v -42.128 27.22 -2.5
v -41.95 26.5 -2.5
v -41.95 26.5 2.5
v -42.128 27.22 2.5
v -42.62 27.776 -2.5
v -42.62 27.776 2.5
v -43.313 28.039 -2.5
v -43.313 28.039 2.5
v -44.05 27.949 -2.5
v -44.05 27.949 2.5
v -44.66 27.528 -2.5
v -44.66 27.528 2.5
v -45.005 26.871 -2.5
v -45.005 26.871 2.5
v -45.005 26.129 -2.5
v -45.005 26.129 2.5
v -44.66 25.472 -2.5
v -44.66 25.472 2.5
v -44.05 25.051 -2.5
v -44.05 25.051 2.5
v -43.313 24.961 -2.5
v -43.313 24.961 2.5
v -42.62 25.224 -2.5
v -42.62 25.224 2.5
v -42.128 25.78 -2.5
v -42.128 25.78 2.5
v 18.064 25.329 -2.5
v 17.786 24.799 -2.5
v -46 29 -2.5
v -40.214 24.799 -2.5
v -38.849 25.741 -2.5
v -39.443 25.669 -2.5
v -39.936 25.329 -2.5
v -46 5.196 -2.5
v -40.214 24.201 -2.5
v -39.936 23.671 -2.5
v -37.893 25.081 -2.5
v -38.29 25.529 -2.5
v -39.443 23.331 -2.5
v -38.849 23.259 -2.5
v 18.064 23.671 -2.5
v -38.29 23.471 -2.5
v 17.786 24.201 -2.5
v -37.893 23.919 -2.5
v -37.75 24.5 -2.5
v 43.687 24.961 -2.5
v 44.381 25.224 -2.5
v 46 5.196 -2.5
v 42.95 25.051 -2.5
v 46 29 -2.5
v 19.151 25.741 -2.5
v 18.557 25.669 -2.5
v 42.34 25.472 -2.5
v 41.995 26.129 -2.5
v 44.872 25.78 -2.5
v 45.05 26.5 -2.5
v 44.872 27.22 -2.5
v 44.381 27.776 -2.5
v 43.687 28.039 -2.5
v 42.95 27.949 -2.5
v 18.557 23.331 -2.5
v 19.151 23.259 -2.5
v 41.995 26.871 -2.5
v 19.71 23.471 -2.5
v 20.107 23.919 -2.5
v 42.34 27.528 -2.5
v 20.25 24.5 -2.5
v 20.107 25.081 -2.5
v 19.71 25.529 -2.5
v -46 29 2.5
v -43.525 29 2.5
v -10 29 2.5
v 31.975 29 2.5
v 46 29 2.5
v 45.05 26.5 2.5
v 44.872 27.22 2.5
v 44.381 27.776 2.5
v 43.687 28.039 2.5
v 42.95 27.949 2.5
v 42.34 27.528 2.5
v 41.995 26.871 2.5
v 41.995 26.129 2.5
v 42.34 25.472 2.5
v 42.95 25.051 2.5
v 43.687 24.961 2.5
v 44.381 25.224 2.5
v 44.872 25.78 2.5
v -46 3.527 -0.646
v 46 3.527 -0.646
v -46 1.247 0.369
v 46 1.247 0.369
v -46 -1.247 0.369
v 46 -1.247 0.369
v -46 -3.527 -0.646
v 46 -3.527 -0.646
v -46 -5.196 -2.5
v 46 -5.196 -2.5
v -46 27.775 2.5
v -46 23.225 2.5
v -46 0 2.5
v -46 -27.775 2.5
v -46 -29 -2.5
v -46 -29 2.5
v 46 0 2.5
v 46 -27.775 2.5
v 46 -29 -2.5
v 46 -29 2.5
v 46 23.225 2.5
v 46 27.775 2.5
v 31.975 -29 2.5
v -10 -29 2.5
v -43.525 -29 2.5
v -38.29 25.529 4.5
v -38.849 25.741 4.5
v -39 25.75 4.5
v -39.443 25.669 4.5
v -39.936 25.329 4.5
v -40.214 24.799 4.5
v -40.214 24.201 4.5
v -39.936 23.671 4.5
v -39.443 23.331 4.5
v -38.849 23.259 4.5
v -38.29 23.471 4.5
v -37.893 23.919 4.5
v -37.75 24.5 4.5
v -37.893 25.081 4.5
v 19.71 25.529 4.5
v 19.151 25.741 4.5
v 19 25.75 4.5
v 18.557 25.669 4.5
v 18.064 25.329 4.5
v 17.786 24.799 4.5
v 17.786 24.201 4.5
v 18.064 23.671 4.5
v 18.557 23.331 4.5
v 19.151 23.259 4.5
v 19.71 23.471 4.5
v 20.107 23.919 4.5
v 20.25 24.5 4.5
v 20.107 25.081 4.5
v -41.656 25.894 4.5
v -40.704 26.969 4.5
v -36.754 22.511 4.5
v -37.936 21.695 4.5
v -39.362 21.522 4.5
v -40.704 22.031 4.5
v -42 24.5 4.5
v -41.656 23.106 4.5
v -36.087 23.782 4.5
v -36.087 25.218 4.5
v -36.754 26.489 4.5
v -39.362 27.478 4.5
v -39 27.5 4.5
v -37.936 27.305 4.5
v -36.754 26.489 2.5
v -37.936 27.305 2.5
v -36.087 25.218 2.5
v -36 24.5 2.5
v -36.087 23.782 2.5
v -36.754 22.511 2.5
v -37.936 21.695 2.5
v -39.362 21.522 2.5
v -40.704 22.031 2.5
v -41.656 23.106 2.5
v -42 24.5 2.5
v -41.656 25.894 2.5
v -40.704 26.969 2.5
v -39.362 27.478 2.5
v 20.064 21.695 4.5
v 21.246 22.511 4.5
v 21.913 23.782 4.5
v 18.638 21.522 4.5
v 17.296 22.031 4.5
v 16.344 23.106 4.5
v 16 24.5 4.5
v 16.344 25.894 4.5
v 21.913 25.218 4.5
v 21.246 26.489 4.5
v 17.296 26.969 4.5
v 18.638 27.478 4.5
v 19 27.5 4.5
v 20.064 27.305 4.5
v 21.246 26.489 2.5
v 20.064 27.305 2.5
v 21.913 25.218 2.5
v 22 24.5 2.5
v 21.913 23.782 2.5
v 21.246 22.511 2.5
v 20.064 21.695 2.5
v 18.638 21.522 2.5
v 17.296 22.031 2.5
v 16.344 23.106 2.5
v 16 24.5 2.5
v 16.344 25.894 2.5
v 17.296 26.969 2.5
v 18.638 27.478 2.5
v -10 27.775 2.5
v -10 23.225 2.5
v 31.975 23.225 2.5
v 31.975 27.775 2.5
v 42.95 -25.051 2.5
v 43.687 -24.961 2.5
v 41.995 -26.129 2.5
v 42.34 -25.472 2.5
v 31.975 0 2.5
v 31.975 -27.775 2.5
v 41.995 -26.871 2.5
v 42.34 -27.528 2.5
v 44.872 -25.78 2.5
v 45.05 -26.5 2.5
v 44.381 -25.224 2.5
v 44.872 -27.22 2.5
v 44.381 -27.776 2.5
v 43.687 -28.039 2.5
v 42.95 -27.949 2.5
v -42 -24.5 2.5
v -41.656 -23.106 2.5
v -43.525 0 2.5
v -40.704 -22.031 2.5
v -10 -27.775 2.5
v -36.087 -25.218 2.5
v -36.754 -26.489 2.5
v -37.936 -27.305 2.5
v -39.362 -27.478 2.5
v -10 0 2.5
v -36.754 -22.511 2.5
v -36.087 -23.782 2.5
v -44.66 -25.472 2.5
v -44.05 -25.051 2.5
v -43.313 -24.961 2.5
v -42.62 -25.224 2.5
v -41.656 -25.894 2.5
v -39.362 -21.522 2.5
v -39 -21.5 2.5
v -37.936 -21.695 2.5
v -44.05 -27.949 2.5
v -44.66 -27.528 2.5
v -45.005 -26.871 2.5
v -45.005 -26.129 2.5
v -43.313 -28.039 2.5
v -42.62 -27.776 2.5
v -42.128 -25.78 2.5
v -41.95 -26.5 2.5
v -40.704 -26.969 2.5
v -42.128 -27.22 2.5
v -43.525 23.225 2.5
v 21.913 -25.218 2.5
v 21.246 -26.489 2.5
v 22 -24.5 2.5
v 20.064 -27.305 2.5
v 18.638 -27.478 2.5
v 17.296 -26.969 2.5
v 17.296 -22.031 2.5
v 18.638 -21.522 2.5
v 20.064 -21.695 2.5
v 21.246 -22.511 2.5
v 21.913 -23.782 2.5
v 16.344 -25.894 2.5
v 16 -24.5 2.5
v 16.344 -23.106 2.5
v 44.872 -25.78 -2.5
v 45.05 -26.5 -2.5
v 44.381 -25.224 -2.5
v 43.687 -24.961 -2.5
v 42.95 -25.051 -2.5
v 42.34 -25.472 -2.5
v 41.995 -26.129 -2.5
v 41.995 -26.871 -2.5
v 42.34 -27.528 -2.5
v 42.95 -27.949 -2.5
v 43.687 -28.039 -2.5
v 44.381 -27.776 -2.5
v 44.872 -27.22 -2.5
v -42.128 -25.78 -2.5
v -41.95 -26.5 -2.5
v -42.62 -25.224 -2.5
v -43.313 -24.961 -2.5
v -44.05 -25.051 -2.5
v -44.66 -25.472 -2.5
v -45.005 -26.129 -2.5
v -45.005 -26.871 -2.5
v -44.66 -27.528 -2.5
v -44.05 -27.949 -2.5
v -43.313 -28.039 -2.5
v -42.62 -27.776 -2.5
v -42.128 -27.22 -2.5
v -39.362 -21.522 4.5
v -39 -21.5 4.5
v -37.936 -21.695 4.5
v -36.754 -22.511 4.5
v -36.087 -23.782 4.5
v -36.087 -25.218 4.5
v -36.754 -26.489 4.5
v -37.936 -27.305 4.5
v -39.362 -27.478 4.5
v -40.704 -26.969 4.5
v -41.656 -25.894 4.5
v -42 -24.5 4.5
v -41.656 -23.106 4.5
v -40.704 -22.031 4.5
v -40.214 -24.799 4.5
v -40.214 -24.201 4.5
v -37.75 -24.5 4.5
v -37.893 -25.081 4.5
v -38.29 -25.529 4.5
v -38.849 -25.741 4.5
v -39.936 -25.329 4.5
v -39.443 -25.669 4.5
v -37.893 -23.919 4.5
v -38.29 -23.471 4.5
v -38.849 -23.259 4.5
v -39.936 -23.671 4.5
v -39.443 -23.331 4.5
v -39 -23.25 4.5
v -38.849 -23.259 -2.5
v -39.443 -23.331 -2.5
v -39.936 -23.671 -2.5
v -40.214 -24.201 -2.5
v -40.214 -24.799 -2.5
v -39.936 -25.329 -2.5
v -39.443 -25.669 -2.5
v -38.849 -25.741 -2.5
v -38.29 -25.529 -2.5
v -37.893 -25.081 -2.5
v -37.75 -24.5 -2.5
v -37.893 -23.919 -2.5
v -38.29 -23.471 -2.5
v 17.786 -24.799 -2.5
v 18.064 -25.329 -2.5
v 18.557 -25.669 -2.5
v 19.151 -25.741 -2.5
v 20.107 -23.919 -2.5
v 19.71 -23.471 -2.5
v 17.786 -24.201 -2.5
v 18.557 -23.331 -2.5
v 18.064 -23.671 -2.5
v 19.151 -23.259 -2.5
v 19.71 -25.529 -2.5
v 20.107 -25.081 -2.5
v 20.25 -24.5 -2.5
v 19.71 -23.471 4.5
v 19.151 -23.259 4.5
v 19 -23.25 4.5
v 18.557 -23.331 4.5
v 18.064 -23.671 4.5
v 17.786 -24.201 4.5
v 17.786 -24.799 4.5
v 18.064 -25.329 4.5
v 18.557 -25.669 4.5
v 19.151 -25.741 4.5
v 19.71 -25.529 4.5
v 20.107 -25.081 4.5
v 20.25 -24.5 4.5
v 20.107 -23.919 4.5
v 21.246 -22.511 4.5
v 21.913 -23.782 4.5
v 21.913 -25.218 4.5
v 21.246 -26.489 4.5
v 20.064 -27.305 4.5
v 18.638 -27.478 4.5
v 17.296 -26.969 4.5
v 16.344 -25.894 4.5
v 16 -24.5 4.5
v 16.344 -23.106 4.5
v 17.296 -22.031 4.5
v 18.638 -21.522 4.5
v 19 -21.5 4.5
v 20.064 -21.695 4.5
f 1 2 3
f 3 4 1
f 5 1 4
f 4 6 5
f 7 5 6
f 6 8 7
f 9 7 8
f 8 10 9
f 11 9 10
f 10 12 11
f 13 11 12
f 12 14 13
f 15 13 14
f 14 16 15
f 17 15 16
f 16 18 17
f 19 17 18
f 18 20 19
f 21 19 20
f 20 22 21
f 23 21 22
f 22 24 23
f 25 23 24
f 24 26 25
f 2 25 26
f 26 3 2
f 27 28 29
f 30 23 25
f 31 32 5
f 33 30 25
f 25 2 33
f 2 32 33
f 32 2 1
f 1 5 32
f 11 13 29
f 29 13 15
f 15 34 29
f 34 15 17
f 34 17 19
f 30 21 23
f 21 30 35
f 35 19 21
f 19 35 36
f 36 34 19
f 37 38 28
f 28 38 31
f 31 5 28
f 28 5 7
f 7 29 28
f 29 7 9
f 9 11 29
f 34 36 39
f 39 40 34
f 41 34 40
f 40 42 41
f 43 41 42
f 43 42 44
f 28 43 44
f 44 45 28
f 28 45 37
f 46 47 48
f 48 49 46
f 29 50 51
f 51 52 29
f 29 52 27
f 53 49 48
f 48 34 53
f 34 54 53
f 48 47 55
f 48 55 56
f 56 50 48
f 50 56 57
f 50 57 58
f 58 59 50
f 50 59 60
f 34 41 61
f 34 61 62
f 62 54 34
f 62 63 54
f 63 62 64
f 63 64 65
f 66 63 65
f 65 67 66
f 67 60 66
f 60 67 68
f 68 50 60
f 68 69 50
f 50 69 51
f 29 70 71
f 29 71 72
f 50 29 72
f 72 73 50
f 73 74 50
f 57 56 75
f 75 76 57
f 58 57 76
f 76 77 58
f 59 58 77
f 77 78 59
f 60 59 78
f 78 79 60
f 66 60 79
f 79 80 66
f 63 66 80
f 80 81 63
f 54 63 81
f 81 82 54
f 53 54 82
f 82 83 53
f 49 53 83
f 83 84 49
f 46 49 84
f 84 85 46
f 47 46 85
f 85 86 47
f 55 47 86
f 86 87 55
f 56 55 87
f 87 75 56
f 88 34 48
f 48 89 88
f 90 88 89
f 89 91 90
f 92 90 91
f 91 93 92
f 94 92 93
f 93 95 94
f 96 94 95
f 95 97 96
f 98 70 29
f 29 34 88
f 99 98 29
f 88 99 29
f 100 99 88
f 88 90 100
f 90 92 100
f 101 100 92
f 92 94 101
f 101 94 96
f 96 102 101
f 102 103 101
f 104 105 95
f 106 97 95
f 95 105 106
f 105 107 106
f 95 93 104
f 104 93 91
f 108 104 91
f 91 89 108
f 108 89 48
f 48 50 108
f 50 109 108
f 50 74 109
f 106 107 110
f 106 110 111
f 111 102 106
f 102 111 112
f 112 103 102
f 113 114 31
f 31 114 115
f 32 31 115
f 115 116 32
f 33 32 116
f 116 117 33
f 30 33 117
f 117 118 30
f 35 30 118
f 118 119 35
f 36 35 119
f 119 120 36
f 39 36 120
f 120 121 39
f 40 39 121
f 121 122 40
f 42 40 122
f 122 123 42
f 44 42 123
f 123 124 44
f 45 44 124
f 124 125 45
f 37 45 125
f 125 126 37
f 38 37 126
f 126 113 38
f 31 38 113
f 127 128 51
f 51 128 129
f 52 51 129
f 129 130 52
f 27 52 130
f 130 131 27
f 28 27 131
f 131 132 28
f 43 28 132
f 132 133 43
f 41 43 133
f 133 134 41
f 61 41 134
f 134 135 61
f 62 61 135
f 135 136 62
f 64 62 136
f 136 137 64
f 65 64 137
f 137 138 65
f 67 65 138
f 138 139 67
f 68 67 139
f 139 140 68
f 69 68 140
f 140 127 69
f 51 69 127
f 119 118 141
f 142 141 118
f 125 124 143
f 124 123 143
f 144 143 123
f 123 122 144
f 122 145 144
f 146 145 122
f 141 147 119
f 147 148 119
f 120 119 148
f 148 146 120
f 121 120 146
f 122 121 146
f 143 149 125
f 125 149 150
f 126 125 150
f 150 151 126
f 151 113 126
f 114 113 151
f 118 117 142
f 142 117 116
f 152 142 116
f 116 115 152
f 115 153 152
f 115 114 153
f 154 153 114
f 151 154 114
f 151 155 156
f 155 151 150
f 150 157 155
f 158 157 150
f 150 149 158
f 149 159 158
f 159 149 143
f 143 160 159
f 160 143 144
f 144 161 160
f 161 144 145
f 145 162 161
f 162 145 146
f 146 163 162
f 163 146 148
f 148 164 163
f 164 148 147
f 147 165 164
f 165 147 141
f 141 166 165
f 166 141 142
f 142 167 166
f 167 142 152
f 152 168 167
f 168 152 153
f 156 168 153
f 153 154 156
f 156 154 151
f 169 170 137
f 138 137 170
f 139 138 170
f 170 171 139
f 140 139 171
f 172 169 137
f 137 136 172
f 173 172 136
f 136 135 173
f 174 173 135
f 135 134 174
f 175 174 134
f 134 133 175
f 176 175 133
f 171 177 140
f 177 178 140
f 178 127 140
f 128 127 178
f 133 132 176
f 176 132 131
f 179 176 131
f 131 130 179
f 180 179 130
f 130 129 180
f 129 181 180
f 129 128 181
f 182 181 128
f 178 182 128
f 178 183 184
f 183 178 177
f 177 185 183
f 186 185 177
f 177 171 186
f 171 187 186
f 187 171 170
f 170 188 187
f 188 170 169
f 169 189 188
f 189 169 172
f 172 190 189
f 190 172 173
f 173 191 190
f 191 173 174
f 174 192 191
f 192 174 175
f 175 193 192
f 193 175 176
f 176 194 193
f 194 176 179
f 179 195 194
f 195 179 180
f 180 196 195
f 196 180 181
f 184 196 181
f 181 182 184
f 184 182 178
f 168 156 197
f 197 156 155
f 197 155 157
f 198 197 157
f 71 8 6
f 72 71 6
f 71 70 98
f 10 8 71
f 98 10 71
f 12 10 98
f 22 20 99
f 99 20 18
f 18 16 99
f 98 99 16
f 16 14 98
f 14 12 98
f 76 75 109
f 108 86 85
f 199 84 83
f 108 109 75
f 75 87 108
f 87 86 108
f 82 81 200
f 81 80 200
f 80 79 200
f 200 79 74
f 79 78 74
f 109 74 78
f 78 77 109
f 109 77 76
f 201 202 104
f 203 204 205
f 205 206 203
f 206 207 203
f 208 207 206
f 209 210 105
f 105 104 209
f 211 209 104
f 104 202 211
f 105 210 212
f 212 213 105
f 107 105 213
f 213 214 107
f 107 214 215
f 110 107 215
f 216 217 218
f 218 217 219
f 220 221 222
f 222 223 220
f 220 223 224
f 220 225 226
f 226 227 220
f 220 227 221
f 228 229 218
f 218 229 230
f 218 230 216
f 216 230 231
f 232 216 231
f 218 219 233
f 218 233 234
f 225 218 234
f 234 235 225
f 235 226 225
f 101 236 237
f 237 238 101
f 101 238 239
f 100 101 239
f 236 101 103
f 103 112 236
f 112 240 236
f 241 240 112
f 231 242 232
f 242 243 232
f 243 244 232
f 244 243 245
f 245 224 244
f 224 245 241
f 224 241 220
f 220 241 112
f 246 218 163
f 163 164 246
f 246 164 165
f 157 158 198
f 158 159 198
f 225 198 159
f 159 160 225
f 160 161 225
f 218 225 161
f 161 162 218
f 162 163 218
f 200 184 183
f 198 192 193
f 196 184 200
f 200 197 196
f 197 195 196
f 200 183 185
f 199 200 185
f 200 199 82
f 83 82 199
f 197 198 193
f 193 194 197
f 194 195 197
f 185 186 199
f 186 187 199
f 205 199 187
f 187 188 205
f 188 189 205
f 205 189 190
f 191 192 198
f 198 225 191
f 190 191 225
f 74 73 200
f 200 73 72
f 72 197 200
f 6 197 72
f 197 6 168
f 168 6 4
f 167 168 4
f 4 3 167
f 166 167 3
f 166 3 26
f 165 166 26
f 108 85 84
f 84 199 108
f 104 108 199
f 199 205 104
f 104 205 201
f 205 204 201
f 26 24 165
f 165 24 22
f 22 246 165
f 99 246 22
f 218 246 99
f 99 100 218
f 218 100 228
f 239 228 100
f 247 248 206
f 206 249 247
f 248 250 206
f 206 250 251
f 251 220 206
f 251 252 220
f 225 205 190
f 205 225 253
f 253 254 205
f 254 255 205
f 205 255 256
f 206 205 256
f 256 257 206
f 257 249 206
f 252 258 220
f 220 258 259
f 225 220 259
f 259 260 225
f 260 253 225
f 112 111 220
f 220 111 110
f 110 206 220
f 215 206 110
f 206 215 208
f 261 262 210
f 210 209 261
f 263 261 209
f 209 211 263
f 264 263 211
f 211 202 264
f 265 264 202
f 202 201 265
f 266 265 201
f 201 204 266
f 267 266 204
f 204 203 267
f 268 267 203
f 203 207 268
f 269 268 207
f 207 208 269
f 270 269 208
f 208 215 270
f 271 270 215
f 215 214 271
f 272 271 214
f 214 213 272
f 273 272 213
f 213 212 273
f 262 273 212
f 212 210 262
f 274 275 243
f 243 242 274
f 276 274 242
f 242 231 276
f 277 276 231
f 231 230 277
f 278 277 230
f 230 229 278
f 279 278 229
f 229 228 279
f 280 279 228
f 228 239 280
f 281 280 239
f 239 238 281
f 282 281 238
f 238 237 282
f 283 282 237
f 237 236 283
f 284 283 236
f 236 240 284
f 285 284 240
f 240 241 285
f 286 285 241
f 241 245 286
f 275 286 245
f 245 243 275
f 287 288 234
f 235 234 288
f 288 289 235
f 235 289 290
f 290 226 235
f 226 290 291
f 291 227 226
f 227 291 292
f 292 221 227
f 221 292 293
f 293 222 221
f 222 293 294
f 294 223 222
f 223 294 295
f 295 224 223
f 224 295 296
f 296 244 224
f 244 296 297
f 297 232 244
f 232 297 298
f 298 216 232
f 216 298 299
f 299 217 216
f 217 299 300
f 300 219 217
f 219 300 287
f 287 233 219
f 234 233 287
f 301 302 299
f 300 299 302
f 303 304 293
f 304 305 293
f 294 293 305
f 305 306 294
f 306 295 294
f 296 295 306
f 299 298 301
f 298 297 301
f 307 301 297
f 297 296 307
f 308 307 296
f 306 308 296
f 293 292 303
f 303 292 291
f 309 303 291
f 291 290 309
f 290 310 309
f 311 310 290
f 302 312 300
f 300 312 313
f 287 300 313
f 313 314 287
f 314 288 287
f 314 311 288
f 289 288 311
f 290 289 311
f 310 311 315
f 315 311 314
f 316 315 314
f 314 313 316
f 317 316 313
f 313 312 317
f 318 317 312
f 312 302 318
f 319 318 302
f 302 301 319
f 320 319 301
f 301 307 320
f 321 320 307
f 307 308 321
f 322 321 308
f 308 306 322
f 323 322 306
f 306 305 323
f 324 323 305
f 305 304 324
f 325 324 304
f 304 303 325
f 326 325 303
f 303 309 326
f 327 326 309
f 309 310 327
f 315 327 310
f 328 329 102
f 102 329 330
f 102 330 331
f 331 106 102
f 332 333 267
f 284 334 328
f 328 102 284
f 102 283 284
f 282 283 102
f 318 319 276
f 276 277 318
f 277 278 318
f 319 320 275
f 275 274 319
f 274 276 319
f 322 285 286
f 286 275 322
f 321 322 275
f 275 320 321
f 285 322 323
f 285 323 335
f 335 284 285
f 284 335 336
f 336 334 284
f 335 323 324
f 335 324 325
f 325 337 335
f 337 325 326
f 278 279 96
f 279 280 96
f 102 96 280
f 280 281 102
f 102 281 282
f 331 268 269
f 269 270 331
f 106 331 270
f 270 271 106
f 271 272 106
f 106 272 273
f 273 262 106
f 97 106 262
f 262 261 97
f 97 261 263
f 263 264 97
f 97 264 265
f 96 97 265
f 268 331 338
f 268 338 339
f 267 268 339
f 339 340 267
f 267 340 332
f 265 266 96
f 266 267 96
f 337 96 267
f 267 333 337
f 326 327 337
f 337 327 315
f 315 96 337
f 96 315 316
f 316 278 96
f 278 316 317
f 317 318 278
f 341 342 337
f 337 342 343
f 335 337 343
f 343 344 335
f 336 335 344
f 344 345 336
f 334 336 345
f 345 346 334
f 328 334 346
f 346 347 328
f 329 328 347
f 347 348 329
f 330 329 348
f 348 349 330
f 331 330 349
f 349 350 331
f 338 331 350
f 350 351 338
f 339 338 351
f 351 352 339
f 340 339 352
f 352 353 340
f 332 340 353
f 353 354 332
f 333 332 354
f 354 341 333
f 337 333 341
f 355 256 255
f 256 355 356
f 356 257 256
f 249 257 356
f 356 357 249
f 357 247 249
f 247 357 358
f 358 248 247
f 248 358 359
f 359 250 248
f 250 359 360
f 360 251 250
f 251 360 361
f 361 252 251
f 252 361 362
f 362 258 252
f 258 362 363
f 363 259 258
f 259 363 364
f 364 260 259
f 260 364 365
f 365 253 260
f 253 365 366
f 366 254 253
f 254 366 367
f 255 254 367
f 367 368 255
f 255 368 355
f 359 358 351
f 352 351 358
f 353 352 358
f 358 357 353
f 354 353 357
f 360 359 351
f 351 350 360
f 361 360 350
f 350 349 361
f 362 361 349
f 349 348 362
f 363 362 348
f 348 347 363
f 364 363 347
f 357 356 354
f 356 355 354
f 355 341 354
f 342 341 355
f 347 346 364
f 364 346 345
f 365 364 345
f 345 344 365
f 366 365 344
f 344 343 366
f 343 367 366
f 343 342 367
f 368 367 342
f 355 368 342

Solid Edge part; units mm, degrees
sketch "Sketch1" plane through (0, 0, 0) normal (0, 0, 1) x (1, 0, 0)
  line L0 (-46, -29) -> (46, -29)
  line L1 (46, -29) -> (46, 29)
  line L2 (46, 29) -> (-46, 29)
  line L3 (-46, 29) -> (-46, -29)
  dimension "D1" = 92
  dimension "D2" = 58
extrude "Ajout_matière_1" add sketch "Sketch1" along normal mid plane 5
sketch "Sketch2" plane through (46, 0, 0) normal (1, 0, 0) x (0, 1, 0)
  circle A0 centre (0, -5.5) radius 6
  dimension "D1" = 12
  dimension "D2" = 3
extrude "Cutout1" cut sketch "Sketch2" against normal through all
hole "Perçage_1" at (-43.5, 26.5, 2.5) direction (0, 0, -1) diameter 3.1 end up to next
hole "Hole1" at (43.5, 26.5, 2.5) direction (0, 0, -1) diameter 3.1 end up to next
hole "Hole2" at (43.5, -26.5, 2.5) direction (0, 0, -1) diameter 3.1 end up to next
hole "Hole3" at (-43.5, -26.5, 2.5) direction (0, 0, -1) diameter 3.1 end up to next
hole "Hole4" at (-39, 24.5, 2.5) direction (0, 0, -1) diameter 2.5 end up to next
hole "Hole5" at (19, 24.5, 2.5) direction (0, 0, -1) diameter 2.5 end up to next
hole "Hole6" at (19, -24.5, 2.5) direction (0, 0, -1) diameter 2.5 end up to next
hole "Hole7" at (-39, -24.5, 2.5) direction (0, 0, -1) diameter 2.5 end up to next
sketch "Sketch3" plane through (0, 0, 2.5) normal (0, 0, 1) x (0, 1, 0)
  circle A0 centre (-24.5, 39) radius 3
  circle A1 centre (-24.5, 39) radius 1.25
  circle A2 centre (24.5, 39) radius 1.25
  circle A3 centre (24.5, 39) radius 3
  circle A4 centre (24.5, -19) radius 1.25
  circle A5 centre (24.5, -19) radius 3
  circle A6 centre (-24.5, -19) radius 1.25
  circle A7 centre (-24.5, -19) radius 3
  dimension "D1" = 6
  dimension "D2" = 2.5
  dimension "D3" = 6
  dimension "D4" = 6
  dimension "D5" = 6
extrude "Protrusion1" add sketch "Sketch3" along normal blind 2
properties material "Plastique ABS, performance moyenne"
